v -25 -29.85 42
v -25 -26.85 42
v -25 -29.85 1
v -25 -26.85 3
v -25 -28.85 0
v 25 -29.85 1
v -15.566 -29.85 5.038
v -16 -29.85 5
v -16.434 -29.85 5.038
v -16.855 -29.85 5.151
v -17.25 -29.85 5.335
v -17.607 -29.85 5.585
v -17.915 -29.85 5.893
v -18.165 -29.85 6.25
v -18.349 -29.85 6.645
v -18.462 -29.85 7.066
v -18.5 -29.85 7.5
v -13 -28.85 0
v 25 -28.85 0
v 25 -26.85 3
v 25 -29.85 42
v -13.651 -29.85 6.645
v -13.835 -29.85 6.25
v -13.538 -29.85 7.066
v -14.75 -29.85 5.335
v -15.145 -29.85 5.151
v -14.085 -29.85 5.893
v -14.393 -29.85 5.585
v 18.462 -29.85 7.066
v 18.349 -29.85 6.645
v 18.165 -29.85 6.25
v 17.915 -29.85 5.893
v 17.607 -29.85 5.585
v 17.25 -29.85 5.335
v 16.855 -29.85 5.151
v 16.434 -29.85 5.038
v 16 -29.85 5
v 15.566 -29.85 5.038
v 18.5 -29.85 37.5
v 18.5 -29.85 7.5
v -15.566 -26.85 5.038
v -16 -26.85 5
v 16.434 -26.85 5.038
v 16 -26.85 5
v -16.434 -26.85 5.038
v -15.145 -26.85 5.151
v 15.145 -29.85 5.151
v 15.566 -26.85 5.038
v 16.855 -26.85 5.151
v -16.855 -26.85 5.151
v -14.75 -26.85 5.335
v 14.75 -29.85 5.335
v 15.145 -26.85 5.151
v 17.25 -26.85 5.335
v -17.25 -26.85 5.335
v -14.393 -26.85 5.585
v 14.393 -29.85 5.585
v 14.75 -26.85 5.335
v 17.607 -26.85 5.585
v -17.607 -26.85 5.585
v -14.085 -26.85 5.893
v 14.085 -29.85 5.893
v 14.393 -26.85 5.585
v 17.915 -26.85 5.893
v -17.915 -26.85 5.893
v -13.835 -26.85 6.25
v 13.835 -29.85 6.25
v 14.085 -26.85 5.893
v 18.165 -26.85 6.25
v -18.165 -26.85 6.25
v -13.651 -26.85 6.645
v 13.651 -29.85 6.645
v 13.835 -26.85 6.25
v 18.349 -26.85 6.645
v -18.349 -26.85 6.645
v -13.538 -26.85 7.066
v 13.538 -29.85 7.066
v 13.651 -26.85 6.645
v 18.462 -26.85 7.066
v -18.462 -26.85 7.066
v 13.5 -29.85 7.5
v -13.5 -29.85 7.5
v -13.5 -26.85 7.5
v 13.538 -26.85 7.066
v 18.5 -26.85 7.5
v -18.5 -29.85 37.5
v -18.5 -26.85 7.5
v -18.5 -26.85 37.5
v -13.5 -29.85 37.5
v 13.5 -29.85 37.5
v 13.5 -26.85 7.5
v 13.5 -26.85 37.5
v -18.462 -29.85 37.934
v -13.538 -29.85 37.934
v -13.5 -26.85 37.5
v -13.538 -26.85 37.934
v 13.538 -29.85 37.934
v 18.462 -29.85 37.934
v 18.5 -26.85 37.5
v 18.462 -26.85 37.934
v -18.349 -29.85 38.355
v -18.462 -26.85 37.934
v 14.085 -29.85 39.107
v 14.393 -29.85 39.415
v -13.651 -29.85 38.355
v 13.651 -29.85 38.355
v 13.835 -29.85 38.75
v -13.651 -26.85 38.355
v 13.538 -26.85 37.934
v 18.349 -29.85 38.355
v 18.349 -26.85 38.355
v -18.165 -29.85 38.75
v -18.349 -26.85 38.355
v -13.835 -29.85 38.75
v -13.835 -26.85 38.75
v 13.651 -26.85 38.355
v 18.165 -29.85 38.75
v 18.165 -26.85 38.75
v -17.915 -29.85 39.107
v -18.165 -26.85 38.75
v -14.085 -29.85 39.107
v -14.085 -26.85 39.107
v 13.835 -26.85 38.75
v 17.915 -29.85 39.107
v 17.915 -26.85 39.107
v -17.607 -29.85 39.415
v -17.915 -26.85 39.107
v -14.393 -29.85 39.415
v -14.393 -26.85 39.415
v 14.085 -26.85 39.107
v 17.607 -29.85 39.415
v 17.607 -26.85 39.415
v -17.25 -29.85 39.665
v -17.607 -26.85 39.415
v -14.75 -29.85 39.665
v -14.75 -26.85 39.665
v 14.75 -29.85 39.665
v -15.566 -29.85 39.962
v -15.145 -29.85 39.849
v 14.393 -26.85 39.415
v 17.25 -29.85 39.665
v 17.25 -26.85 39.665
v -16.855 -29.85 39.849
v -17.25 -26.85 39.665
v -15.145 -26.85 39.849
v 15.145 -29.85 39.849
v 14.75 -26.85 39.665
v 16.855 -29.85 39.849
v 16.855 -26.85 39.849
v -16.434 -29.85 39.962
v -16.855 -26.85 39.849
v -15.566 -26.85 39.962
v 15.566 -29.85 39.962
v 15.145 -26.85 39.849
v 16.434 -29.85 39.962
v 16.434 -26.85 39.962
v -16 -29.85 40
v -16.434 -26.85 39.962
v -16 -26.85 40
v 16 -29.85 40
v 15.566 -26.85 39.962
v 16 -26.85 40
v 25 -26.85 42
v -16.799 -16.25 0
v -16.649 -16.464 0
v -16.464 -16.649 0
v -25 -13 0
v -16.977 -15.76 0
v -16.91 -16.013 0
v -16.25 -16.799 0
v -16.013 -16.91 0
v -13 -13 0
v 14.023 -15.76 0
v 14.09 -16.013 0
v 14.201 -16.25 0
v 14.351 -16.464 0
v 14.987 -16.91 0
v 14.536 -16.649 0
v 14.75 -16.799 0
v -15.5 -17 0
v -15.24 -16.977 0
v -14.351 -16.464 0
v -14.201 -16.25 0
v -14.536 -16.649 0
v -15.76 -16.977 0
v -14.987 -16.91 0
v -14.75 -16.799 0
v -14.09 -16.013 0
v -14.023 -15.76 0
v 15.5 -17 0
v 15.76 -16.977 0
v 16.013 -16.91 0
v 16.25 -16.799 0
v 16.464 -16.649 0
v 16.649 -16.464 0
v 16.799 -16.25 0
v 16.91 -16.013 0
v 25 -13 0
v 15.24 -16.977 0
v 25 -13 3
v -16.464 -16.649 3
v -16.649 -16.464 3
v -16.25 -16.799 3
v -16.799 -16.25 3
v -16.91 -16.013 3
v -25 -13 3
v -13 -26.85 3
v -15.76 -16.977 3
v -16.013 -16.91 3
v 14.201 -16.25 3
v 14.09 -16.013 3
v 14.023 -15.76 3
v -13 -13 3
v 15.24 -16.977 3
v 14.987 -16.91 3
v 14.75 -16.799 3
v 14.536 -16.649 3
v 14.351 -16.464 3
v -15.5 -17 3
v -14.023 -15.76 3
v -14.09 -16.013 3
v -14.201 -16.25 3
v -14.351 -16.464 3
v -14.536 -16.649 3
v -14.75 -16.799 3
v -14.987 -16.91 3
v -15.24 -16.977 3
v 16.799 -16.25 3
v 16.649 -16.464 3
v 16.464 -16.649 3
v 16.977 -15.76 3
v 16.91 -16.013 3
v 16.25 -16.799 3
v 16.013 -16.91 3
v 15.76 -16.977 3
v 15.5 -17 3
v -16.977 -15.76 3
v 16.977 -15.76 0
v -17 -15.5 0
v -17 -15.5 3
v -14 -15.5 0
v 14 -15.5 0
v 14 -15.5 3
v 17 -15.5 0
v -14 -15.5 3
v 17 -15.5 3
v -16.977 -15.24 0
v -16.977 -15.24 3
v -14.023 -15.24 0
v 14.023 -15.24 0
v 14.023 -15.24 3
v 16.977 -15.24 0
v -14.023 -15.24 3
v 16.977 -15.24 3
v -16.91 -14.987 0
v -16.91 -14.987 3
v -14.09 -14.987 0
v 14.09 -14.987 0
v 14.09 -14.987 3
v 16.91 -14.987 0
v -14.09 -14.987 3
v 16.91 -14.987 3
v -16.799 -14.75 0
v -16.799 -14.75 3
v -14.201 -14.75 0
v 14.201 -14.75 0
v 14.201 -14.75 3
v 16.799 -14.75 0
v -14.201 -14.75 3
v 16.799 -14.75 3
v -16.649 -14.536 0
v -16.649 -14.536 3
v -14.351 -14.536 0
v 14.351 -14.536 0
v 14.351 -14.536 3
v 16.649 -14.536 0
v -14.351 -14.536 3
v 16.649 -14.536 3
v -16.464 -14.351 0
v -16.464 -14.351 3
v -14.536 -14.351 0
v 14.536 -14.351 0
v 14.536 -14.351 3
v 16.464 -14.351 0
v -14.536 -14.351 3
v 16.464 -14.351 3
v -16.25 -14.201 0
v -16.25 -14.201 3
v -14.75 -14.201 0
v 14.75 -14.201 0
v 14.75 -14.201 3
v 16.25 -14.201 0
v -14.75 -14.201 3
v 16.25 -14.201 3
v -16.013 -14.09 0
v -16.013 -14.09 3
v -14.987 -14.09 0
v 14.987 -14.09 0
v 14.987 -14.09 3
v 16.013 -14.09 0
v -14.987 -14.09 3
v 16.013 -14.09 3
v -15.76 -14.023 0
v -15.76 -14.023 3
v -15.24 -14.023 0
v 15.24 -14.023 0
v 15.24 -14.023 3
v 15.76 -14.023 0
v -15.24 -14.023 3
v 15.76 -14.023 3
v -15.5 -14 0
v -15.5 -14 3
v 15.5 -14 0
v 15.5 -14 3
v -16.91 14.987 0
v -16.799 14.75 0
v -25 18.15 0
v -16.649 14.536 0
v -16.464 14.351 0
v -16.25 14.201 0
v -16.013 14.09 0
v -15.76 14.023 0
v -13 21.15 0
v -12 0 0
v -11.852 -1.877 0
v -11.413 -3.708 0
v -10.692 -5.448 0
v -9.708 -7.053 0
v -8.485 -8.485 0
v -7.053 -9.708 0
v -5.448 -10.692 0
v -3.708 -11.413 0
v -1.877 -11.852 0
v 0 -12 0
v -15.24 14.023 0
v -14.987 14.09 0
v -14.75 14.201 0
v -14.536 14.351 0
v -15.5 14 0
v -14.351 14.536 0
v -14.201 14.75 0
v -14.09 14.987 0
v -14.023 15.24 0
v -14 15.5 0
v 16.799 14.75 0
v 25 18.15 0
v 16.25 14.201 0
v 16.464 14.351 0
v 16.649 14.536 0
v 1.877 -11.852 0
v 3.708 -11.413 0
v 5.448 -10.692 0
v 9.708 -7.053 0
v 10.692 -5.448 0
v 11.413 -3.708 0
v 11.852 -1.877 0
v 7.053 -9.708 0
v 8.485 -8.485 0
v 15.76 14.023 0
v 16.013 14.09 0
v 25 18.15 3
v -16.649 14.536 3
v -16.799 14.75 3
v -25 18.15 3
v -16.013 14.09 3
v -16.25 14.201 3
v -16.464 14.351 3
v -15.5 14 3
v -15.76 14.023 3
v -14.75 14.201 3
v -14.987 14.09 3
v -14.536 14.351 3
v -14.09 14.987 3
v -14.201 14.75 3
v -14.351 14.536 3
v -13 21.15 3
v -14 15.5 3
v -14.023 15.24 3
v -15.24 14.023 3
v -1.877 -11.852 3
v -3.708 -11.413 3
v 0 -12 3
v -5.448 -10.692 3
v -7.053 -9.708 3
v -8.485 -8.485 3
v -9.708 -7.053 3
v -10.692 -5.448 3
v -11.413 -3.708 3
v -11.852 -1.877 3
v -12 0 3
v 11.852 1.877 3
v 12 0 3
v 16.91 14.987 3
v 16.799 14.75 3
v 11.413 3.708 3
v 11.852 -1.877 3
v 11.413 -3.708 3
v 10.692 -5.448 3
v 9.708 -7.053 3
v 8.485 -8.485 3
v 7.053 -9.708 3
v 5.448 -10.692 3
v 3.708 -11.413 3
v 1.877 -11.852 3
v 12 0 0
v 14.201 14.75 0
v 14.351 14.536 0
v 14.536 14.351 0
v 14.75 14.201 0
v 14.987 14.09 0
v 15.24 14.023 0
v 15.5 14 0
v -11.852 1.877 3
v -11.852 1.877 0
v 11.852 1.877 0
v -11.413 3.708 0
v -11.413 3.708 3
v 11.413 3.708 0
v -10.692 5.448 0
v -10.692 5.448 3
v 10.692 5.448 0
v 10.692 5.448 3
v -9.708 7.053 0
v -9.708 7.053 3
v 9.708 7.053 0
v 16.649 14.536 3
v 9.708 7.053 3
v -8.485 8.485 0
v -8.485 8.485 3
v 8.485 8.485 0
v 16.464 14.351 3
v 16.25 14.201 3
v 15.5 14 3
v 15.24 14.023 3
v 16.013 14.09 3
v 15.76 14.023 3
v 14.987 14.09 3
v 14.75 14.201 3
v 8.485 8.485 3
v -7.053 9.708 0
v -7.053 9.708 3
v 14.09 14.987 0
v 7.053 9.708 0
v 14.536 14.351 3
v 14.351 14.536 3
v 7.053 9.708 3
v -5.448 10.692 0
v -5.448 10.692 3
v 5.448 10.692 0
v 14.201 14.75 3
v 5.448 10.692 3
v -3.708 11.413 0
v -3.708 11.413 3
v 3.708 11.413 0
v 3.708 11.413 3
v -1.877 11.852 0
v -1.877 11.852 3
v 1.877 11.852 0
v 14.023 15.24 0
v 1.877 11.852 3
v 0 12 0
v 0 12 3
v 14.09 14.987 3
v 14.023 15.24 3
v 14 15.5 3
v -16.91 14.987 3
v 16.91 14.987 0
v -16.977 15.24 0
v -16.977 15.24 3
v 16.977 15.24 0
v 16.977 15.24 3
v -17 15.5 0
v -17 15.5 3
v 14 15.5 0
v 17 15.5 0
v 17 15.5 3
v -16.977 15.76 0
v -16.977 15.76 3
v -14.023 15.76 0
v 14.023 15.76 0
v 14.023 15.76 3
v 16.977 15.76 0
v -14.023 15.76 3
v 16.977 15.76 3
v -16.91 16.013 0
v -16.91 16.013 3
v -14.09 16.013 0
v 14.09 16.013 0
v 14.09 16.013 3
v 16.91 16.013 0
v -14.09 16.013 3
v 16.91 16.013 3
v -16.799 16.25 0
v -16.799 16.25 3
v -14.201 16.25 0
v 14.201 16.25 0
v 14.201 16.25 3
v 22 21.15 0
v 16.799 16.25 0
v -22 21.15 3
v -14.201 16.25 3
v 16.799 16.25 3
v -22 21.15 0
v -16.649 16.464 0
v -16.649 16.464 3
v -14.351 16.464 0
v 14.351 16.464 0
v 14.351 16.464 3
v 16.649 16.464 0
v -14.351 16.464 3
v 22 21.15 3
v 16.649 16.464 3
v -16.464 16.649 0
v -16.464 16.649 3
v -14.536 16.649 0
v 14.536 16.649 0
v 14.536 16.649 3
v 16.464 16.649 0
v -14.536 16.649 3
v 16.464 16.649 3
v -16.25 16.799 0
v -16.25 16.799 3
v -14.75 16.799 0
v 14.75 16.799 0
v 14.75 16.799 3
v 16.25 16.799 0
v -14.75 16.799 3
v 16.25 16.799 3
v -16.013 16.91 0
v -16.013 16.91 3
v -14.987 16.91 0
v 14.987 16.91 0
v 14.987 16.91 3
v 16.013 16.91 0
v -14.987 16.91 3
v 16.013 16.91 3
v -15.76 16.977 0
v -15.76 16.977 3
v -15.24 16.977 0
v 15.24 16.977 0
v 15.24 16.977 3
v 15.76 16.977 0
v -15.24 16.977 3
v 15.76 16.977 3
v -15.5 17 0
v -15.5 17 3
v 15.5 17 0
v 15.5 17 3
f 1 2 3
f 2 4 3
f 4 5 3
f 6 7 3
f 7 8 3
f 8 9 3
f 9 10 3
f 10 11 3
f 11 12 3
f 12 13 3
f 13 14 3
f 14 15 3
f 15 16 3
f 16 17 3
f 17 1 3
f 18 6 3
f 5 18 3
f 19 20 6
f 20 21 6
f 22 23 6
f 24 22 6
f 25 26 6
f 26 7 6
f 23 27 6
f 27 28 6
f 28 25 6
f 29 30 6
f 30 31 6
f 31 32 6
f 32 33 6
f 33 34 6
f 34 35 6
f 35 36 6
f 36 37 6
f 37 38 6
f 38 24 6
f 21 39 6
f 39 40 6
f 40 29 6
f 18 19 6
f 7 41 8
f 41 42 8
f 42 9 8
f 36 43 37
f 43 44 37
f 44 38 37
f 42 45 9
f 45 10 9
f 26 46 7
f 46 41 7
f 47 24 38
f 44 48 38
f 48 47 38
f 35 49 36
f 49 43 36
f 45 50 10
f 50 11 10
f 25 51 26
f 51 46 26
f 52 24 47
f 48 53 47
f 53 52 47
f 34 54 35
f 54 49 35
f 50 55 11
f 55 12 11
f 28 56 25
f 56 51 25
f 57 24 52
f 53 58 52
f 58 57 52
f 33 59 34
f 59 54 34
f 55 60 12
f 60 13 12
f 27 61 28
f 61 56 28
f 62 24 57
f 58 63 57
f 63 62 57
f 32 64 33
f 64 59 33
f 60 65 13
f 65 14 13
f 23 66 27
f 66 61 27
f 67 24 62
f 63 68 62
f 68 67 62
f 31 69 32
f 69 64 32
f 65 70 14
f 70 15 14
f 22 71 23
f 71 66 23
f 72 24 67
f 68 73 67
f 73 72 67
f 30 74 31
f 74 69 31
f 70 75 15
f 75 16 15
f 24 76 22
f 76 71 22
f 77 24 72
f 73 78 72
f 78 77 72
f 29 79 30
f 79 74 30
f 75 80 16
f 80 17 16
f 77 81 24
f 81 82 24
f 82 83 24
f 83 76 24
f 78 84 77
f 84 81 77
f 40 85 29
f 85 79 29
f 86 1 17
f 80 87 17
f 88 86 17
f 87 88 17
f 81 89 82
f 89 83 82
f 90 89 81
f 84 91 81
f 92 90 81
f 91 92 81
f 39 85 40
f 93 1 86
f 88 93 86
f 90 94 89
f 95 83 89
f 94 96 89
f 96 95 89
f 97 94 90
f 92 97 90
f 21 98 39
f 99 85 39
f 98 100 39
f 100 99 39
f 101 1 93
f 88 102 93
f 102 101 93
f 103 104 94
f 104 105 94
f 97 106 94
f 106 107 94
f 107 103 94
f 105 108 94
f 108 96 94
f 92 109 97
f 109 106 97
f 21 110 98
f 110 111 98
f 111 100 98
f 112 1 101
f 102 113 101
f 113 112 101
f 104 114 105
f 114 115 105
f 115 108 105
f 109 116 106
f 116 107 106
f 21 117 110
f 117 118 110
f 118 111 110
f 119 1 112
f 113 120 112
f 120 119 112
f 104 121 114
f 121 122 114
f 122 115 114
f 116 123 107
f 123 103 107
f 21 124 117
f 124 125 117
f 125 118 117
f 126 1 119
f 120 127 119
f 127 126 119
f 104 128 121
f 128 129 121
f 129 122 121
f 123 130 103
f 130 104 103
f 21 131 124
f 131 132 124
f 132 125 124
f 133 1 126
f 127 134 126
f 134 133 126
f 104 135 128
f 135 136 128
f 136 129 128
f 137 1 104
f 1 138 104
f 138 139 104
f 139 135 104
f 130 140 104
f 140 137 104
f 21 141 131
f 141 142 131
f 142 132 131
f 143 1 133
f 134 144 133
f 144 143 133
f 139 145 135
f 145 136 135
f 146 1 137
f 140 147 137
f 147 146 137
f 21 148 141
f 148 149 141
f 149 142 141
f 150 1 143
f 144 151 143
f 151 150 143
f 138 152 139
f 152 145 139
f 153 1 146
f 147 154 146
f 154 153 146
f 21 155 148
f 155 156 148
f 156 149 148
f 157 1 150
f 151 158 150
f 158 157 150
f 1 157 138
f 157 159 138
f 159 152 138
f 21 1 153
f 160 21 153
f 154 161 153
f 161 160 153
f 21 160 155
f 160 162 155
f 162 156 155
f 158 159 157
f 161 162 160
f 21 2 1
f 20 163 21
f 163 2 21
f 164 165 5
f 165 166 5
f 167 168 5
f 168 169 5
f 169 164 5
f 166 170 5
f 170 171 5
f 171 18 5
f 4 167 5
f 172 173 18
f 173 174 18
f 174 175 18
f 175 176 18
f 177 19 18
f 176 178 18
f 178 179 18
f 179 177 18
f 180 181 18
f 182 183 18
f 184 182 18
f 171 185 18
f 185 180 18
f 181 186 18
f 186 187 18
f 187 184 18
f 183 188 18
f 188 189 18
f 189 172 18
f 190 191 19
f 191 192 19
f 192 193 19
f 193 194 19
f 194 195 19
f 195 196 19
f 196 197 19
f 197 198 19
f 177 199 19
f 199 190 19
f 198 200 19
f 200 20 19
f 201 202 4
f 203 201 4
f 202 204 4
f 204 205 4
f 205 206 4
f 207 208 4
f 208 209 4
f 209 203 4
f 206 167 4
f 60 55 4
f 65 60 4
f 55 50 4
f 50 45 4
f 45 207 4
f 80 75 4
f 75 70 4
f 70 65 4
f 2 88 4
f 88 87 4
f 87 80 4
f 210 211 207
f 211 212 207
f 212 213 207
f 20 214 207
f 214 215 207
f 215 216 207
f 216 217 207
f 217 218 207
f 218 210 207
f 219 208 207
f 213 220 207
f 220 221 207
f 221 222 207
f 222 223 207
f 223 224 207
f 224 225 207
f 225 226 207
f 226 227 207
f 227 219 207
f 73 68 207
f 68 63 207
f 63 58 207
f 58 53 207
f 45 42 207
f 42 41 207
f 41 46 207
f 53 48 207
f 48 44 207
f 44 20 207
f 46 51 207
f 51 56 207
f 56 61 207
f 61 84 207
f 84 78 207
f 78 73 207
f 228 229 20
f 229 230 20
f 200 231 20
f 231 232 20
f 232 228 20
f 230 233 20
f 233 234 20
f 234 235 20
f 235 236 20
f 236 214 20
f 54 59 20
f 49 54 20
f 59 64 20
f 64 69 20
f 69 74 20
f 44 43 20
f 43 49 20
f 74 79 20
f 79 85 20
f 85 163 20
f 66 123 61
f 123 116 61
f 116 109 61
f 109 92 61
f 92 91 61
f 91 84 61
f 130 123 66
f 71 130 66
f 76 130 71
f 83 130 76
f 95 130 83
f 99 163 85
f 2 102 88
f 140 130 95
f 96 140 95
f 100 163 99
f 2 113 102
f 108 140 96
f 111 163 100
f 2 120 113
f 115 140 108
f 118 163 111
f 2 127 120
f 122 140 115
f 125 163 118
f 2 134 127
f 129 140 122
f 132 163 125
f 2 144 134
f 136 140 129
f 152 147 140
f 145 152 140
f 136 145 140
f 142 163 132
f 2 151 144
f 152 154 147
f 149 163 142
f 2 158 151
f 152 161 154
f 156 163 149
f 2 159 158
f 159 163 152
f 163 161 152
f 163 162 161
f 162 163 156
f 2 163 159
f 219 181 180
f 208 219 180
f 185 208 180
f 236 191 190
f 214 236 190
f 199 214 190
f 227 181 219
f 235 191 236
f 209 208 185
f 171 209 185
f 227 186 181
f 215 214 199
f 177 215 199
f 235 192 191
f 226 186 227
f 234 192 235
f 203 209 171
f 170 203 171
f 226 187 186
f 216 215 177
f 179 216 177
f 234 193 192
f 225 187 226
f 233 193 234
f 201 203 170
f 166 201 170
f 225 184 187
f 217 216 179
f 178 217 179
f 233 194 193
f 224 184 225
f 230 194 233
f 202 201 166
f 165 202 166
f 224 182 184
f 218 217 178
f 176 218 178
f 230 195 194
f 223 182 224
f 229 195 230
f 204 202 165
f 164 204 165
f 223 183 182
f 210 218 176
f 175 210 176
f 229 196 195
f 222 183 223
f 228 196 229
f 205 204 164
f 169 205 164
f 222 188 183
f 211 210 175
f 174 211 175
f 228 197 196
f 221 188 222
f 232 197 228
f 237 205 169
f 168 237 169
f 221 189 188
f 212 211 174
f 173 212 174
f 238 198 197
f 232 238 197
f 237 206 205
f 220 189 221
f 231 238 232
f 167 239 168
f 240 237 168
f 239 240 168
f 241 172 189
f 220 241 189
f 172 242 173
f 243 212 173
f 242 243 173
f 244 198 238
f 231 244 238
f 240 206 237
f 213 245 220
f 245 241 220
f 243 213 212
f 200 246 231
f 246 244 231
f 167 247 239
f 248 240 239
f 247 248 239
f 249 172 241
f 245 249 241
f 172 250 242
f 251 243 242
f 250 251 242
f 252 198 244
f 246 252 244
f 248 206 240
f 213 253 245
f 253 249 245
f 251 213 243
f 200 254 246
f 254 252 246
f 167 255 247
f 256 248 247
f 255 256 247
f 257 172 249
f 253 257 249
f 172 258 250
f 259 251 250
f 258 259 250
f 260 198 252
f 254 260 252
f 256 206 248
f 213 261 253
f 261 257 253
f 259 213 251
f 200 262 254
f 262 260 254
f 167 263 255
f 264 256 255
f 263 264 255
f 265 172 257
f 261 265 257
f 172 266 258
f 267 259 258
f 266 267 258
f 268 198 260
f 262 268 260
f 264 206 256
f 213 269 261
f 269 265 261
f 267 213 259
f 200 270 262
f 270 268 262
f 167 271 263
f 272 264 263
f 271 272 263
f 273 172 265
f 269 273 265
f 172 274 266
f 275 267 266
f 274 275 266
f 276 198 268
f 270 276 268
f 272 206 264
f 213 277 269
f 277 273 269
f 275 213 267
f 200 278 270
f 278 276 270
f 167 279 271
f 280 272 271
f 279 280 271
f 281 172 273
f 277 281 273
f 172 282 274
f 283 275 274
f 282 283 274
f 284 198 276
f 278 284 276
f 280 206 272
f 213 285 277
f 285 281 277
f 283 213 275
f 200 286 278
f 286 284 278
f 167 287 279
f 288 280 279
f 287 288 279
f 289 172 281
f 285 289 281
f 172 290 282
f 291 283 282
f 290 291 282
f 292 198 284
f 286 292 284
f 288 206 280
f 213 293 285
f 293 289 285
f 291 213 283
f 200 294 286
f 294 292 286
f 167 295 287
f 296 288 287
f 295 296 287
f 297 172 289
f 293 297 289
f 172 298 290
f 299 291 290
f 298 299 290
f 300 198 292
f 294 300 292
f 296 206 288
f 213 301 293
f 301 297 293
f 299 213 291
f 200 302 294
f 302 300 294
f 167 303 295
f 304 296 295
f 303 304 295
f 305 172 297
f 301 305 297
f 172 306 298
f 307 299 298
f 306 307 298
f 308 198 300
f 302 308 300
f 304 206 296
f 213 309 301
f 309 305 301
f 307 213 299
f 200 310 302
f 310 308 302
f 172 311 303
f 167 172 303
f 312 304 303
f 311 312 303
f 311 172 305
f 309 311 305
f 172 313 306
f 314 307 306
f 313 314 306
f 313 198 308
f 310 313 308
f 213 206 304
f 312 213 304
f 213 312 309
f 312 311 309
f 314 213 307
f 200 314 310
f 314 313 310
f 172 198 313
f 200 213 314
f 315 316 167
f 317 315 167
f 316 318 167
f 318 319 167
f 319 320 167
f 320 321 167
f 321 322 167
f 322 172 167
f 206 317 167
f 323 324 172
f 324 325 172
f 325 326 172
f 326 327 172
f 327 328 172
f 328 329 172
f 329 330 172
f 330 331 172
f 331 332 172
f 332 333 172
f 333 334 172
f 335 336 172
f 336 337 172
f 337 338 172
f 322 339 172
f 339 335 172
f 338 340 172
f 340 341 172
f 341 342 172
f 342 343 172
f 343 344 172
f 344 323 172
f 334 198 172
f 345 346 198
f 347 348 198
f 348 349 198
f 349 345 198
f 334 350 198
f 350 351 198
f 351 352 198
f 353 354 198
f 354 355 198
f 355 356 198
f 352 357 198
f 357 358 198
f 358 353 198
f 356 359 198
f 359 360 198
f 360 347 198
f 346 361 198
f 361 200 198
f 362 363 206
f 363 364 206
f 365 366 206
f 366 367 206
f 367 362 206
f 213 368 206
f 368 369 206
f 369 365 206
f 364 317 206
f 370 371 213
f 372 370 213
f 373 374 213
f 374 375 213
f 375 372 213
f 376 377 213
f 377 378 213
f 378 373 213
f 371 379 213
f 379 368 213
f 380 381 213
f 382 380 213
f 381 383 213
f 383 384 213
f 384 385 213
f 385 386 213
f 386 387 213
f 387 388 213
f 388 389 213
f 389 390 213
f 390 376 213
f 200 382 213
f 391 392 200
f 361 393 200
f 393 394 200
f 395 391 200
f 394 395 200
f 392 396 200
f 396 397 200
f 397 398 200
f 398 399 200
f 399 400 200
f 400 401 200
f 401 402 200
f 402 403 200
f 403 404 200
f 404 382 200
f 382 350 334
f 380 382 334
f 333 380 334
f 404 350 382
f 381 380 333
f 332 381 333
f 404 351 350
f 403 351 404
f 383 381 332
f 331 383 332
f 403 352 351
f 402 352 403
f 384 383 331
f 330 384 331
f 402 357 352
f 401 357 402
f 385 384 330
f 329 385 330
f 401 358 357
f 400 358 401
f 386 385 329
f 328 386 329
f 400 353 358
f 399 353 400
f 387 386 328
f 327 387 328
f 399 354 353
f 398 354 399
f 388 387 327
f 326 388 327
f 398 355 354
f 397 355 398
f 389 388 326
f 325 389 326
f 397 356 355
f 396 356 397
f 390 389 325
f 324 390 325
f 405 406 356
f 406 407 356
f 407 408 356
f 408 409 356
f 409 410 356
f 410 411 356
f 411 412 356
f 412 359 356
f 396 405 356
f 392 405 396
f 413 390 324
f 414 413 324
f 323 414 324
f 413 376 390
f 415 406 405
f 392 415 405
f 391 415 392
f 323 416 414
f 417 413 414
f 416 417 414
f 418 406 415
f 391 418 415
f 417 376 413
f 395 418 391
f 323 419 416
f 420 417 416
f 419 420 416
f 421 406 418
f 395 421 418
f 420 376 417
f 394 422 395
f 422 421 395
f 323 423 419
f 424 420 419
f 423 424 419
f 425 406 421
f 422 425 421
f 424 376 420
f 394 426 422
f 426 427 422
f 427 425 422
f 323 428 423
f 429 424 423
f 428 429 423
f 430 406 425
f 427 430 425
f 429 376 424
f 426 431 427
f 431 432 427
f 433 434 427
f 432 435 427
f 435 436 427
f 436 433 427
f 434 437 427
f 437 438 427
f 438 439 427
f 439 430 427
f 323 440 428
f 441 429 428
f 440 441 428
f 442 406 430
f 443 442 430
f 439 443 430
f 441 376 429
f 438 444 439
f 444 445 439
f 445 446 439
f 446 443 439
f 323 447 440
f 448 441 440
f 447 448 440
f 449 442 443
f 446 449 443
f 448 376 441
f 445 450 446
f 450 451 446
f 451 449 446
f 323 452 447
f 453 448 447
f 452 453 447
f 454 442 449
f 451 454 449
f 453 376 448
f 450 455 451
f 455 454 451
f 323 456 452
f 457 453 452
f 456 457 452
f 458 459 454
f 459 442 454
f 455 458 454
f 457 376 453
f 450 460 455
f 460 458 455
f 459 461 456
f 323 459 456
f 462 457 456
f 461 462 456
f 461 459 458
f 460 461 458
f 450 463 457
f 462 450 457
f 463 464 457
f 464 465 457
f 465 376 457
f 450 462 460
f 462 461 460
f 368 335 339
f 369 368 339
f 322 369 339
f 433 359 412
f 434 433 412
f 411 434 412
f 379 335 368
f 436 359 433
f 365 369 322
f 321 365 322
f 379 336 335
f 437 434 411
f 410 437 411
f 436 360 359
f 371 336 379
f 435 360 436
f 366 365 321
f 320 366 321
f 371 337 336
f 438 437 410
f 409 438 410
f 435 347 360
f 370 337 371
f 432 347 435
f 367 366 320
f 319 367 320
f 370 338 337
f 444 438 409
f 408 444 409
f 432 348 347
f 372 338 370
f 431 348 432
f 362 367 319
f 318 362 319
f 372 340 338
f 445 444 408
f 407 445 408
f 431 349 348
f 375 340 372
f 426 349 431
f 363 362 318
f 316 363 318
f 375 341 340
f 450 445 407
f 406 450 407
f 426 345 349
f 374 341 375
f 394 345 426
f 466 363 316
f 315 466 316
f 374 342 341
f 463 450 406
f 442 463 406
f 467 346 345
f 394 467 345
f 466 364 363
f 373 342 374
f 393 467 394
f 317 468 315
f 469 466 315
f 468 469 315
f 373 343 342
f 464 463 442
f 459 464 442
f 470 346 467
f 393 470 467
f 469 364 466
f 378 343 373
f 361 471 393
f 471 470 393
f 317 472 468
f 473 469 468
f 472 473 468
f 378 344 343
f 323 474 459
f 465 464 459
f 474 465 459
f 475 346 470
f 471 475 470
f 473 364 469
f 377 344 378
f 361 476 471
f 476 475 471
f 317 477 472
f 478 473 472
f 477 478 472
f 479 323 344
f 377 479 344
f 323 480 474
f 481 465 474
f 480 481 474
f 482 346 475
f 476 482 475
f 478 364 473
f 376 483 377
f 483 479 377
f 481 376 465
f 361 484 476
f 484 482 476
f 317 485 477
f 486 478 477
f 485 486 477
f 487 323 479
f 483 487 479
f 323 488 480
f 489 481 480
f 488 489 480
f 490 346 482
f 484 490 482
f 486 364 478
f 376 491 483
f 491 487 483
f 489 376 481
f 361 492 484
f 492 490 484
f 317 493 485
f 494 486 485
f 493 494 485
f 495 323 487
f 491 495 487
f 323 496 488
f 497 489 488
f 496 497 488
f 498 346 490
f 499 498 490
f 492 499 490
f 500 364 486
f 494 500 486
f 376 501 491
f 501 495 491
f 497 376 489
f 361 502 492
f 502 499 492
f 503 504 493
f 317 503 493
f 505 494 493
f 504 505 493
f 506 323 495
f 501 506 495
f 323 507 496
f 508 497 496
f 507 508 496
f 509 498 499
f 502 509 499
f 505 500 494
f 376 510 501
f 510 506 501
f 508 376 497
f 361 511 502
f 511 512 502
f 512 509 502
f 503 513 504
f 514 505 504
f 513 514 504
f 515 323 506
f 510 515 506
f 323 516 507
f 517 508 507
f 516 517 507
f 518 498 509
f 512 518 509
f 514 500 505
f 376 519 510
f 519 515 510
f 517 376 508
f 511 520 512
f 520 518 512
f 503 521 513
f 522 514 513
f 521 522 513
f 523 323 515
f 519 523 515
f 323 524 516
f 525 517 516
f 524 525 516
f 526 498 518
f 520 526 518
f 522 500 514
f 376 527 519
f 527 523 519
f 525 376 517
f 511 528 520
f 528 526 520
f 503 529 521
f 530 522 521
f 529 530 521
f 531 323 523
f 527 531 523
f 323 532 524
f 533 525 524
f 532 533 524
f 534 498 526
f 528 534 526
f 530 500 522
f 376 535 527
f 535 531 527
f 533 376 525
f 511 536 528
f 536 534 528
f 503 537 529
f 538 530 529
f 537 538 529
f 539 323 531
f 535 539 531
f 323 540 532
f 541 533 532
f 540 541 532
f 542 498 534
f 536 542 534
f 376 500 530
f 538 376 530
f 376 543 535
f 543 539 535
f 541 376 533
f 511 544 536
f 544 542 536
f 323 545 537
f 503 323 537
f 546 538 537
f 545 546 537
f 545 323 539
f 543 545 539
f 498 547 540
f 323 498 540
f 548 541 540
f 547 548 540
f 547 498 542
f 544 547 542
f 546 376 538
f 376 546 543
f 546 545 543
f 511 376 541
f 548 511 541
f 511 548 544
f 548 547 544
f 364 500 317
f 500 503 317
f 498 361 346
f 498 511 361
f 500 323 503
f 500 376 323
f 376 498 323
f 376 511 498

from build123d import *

# Parameters (mm, degrees)
SKETCH1_R           = 12
SKETCH1_R_2         = 1.5
BOSS_EXTRUDE1_DEPTH = 3
BOSS_EXTRUDE2_DEPTH = 3
SKETCH3_W           = 50
SKETCH3_H           = 3
BOSS_EXTRUDE3_DEPTH = 39
CHAMFER1_SIZE       = 1
CUT_EXTRUDE1_DEPTH  = 3


with BuildPart() as part:
    # Sketch1 → Boss-Extrude1 (new body)
    with BuildSketch(Plane.XY):
        Polygon((-22, 21.15), (-25, 18.15), (-25, -23.85), (-22, -26.85), (22, -26.85), (25, -23.85), (25, 18.15), (22, 21.15), align=None)
        Circle(SKETCH1_R, mode=Mode.SUBTRACT)
        with Locations((-15.5, 15.5)):
            Circle(SKETCH1_R_2, mode=Mode.SUBTRACT)
        with Locations((15.5, 15.5)):
            Circle(SKETCH1_R_2, mode=Mode.SUBTRACT)
        with Locations((-15.5, -15.5)):
            Circle(SKETCH1_R_2, mode=Mode.SUBTRACT)
        with Locations((15.5, -15.5)):
            Circle(SKETCH1_R_2, mode=Mode.SUBTRACT)
    extrude(amount=BOSS_EXTRUDE1_DEPTH)

    # Sketch2 → Boss-Extrude2 (add)
    with BuildSketch(Plane(origin=(0, 0, 0), x_dir=(-1, 0, 0), z_dir=(0, 0, -1))):
        Polygon((-25, -23.85), (-25, -29.85), (25, -29.85), (25, -23.85), (22, -26.85), (-22, -26.85), align=None)
    extrude(amount=-BOSS_EXTRUDE2_DEPTH)

    # Sketch3 → Boss-Extrude3 (add)
    with BuildSketch(Plane.XY.offset(3)):
        with Locations((0, -28.35)):
            Rectangle(SKETCH3_W, SKETCH3_H)
    extrude(amount=BOSS_EXTRUDE3_DEPTH)

    # Chamfer1
    chamfer1_edges = [part.edges().sort_by_distance(p)[0] for p in [
        (0, -29.85, 0),
    ]]
    chamfer(chamfer1_edges, length=CHAMFER1_SIZE)

    # Sketch4 → Cut-Extrude1 (cut)
    with BuildSketch(Plane(origin=(0, -26.85, 0), x_dir=(1, 0, 0), z_dir=(0, 1, 0))):
        with BuildLine():
            Line((18.5, -7.5), (18.5, -37.5))
            ThreePointArc((18.5, -37.5), (16, -40), (13.5, -37.5))
            Line((13.5, -37.5), (13.5, -7.5))
            ThreePointArc((13.5, -7.5), (16, -5), (18.5, -7.5))
        make_face()
        with BuildLine():
            Line((-18.5, -7.5), (-18.5, -37.5))
            ThreePointArc((-18.5, -37.5), (-16, -40), (-13.5, -37.5))
            Line((-13.5, -37.5), (-13.5, -7.5))
            ThreePointArc((-13.5, -7.5), (-16, -5), (-18.5, -7.5))
        make_face()
    extrude(amount=-CUT_EXTRUDE1_DEPTH, mode=Mode.SUBTRACT)


solid = part.part
